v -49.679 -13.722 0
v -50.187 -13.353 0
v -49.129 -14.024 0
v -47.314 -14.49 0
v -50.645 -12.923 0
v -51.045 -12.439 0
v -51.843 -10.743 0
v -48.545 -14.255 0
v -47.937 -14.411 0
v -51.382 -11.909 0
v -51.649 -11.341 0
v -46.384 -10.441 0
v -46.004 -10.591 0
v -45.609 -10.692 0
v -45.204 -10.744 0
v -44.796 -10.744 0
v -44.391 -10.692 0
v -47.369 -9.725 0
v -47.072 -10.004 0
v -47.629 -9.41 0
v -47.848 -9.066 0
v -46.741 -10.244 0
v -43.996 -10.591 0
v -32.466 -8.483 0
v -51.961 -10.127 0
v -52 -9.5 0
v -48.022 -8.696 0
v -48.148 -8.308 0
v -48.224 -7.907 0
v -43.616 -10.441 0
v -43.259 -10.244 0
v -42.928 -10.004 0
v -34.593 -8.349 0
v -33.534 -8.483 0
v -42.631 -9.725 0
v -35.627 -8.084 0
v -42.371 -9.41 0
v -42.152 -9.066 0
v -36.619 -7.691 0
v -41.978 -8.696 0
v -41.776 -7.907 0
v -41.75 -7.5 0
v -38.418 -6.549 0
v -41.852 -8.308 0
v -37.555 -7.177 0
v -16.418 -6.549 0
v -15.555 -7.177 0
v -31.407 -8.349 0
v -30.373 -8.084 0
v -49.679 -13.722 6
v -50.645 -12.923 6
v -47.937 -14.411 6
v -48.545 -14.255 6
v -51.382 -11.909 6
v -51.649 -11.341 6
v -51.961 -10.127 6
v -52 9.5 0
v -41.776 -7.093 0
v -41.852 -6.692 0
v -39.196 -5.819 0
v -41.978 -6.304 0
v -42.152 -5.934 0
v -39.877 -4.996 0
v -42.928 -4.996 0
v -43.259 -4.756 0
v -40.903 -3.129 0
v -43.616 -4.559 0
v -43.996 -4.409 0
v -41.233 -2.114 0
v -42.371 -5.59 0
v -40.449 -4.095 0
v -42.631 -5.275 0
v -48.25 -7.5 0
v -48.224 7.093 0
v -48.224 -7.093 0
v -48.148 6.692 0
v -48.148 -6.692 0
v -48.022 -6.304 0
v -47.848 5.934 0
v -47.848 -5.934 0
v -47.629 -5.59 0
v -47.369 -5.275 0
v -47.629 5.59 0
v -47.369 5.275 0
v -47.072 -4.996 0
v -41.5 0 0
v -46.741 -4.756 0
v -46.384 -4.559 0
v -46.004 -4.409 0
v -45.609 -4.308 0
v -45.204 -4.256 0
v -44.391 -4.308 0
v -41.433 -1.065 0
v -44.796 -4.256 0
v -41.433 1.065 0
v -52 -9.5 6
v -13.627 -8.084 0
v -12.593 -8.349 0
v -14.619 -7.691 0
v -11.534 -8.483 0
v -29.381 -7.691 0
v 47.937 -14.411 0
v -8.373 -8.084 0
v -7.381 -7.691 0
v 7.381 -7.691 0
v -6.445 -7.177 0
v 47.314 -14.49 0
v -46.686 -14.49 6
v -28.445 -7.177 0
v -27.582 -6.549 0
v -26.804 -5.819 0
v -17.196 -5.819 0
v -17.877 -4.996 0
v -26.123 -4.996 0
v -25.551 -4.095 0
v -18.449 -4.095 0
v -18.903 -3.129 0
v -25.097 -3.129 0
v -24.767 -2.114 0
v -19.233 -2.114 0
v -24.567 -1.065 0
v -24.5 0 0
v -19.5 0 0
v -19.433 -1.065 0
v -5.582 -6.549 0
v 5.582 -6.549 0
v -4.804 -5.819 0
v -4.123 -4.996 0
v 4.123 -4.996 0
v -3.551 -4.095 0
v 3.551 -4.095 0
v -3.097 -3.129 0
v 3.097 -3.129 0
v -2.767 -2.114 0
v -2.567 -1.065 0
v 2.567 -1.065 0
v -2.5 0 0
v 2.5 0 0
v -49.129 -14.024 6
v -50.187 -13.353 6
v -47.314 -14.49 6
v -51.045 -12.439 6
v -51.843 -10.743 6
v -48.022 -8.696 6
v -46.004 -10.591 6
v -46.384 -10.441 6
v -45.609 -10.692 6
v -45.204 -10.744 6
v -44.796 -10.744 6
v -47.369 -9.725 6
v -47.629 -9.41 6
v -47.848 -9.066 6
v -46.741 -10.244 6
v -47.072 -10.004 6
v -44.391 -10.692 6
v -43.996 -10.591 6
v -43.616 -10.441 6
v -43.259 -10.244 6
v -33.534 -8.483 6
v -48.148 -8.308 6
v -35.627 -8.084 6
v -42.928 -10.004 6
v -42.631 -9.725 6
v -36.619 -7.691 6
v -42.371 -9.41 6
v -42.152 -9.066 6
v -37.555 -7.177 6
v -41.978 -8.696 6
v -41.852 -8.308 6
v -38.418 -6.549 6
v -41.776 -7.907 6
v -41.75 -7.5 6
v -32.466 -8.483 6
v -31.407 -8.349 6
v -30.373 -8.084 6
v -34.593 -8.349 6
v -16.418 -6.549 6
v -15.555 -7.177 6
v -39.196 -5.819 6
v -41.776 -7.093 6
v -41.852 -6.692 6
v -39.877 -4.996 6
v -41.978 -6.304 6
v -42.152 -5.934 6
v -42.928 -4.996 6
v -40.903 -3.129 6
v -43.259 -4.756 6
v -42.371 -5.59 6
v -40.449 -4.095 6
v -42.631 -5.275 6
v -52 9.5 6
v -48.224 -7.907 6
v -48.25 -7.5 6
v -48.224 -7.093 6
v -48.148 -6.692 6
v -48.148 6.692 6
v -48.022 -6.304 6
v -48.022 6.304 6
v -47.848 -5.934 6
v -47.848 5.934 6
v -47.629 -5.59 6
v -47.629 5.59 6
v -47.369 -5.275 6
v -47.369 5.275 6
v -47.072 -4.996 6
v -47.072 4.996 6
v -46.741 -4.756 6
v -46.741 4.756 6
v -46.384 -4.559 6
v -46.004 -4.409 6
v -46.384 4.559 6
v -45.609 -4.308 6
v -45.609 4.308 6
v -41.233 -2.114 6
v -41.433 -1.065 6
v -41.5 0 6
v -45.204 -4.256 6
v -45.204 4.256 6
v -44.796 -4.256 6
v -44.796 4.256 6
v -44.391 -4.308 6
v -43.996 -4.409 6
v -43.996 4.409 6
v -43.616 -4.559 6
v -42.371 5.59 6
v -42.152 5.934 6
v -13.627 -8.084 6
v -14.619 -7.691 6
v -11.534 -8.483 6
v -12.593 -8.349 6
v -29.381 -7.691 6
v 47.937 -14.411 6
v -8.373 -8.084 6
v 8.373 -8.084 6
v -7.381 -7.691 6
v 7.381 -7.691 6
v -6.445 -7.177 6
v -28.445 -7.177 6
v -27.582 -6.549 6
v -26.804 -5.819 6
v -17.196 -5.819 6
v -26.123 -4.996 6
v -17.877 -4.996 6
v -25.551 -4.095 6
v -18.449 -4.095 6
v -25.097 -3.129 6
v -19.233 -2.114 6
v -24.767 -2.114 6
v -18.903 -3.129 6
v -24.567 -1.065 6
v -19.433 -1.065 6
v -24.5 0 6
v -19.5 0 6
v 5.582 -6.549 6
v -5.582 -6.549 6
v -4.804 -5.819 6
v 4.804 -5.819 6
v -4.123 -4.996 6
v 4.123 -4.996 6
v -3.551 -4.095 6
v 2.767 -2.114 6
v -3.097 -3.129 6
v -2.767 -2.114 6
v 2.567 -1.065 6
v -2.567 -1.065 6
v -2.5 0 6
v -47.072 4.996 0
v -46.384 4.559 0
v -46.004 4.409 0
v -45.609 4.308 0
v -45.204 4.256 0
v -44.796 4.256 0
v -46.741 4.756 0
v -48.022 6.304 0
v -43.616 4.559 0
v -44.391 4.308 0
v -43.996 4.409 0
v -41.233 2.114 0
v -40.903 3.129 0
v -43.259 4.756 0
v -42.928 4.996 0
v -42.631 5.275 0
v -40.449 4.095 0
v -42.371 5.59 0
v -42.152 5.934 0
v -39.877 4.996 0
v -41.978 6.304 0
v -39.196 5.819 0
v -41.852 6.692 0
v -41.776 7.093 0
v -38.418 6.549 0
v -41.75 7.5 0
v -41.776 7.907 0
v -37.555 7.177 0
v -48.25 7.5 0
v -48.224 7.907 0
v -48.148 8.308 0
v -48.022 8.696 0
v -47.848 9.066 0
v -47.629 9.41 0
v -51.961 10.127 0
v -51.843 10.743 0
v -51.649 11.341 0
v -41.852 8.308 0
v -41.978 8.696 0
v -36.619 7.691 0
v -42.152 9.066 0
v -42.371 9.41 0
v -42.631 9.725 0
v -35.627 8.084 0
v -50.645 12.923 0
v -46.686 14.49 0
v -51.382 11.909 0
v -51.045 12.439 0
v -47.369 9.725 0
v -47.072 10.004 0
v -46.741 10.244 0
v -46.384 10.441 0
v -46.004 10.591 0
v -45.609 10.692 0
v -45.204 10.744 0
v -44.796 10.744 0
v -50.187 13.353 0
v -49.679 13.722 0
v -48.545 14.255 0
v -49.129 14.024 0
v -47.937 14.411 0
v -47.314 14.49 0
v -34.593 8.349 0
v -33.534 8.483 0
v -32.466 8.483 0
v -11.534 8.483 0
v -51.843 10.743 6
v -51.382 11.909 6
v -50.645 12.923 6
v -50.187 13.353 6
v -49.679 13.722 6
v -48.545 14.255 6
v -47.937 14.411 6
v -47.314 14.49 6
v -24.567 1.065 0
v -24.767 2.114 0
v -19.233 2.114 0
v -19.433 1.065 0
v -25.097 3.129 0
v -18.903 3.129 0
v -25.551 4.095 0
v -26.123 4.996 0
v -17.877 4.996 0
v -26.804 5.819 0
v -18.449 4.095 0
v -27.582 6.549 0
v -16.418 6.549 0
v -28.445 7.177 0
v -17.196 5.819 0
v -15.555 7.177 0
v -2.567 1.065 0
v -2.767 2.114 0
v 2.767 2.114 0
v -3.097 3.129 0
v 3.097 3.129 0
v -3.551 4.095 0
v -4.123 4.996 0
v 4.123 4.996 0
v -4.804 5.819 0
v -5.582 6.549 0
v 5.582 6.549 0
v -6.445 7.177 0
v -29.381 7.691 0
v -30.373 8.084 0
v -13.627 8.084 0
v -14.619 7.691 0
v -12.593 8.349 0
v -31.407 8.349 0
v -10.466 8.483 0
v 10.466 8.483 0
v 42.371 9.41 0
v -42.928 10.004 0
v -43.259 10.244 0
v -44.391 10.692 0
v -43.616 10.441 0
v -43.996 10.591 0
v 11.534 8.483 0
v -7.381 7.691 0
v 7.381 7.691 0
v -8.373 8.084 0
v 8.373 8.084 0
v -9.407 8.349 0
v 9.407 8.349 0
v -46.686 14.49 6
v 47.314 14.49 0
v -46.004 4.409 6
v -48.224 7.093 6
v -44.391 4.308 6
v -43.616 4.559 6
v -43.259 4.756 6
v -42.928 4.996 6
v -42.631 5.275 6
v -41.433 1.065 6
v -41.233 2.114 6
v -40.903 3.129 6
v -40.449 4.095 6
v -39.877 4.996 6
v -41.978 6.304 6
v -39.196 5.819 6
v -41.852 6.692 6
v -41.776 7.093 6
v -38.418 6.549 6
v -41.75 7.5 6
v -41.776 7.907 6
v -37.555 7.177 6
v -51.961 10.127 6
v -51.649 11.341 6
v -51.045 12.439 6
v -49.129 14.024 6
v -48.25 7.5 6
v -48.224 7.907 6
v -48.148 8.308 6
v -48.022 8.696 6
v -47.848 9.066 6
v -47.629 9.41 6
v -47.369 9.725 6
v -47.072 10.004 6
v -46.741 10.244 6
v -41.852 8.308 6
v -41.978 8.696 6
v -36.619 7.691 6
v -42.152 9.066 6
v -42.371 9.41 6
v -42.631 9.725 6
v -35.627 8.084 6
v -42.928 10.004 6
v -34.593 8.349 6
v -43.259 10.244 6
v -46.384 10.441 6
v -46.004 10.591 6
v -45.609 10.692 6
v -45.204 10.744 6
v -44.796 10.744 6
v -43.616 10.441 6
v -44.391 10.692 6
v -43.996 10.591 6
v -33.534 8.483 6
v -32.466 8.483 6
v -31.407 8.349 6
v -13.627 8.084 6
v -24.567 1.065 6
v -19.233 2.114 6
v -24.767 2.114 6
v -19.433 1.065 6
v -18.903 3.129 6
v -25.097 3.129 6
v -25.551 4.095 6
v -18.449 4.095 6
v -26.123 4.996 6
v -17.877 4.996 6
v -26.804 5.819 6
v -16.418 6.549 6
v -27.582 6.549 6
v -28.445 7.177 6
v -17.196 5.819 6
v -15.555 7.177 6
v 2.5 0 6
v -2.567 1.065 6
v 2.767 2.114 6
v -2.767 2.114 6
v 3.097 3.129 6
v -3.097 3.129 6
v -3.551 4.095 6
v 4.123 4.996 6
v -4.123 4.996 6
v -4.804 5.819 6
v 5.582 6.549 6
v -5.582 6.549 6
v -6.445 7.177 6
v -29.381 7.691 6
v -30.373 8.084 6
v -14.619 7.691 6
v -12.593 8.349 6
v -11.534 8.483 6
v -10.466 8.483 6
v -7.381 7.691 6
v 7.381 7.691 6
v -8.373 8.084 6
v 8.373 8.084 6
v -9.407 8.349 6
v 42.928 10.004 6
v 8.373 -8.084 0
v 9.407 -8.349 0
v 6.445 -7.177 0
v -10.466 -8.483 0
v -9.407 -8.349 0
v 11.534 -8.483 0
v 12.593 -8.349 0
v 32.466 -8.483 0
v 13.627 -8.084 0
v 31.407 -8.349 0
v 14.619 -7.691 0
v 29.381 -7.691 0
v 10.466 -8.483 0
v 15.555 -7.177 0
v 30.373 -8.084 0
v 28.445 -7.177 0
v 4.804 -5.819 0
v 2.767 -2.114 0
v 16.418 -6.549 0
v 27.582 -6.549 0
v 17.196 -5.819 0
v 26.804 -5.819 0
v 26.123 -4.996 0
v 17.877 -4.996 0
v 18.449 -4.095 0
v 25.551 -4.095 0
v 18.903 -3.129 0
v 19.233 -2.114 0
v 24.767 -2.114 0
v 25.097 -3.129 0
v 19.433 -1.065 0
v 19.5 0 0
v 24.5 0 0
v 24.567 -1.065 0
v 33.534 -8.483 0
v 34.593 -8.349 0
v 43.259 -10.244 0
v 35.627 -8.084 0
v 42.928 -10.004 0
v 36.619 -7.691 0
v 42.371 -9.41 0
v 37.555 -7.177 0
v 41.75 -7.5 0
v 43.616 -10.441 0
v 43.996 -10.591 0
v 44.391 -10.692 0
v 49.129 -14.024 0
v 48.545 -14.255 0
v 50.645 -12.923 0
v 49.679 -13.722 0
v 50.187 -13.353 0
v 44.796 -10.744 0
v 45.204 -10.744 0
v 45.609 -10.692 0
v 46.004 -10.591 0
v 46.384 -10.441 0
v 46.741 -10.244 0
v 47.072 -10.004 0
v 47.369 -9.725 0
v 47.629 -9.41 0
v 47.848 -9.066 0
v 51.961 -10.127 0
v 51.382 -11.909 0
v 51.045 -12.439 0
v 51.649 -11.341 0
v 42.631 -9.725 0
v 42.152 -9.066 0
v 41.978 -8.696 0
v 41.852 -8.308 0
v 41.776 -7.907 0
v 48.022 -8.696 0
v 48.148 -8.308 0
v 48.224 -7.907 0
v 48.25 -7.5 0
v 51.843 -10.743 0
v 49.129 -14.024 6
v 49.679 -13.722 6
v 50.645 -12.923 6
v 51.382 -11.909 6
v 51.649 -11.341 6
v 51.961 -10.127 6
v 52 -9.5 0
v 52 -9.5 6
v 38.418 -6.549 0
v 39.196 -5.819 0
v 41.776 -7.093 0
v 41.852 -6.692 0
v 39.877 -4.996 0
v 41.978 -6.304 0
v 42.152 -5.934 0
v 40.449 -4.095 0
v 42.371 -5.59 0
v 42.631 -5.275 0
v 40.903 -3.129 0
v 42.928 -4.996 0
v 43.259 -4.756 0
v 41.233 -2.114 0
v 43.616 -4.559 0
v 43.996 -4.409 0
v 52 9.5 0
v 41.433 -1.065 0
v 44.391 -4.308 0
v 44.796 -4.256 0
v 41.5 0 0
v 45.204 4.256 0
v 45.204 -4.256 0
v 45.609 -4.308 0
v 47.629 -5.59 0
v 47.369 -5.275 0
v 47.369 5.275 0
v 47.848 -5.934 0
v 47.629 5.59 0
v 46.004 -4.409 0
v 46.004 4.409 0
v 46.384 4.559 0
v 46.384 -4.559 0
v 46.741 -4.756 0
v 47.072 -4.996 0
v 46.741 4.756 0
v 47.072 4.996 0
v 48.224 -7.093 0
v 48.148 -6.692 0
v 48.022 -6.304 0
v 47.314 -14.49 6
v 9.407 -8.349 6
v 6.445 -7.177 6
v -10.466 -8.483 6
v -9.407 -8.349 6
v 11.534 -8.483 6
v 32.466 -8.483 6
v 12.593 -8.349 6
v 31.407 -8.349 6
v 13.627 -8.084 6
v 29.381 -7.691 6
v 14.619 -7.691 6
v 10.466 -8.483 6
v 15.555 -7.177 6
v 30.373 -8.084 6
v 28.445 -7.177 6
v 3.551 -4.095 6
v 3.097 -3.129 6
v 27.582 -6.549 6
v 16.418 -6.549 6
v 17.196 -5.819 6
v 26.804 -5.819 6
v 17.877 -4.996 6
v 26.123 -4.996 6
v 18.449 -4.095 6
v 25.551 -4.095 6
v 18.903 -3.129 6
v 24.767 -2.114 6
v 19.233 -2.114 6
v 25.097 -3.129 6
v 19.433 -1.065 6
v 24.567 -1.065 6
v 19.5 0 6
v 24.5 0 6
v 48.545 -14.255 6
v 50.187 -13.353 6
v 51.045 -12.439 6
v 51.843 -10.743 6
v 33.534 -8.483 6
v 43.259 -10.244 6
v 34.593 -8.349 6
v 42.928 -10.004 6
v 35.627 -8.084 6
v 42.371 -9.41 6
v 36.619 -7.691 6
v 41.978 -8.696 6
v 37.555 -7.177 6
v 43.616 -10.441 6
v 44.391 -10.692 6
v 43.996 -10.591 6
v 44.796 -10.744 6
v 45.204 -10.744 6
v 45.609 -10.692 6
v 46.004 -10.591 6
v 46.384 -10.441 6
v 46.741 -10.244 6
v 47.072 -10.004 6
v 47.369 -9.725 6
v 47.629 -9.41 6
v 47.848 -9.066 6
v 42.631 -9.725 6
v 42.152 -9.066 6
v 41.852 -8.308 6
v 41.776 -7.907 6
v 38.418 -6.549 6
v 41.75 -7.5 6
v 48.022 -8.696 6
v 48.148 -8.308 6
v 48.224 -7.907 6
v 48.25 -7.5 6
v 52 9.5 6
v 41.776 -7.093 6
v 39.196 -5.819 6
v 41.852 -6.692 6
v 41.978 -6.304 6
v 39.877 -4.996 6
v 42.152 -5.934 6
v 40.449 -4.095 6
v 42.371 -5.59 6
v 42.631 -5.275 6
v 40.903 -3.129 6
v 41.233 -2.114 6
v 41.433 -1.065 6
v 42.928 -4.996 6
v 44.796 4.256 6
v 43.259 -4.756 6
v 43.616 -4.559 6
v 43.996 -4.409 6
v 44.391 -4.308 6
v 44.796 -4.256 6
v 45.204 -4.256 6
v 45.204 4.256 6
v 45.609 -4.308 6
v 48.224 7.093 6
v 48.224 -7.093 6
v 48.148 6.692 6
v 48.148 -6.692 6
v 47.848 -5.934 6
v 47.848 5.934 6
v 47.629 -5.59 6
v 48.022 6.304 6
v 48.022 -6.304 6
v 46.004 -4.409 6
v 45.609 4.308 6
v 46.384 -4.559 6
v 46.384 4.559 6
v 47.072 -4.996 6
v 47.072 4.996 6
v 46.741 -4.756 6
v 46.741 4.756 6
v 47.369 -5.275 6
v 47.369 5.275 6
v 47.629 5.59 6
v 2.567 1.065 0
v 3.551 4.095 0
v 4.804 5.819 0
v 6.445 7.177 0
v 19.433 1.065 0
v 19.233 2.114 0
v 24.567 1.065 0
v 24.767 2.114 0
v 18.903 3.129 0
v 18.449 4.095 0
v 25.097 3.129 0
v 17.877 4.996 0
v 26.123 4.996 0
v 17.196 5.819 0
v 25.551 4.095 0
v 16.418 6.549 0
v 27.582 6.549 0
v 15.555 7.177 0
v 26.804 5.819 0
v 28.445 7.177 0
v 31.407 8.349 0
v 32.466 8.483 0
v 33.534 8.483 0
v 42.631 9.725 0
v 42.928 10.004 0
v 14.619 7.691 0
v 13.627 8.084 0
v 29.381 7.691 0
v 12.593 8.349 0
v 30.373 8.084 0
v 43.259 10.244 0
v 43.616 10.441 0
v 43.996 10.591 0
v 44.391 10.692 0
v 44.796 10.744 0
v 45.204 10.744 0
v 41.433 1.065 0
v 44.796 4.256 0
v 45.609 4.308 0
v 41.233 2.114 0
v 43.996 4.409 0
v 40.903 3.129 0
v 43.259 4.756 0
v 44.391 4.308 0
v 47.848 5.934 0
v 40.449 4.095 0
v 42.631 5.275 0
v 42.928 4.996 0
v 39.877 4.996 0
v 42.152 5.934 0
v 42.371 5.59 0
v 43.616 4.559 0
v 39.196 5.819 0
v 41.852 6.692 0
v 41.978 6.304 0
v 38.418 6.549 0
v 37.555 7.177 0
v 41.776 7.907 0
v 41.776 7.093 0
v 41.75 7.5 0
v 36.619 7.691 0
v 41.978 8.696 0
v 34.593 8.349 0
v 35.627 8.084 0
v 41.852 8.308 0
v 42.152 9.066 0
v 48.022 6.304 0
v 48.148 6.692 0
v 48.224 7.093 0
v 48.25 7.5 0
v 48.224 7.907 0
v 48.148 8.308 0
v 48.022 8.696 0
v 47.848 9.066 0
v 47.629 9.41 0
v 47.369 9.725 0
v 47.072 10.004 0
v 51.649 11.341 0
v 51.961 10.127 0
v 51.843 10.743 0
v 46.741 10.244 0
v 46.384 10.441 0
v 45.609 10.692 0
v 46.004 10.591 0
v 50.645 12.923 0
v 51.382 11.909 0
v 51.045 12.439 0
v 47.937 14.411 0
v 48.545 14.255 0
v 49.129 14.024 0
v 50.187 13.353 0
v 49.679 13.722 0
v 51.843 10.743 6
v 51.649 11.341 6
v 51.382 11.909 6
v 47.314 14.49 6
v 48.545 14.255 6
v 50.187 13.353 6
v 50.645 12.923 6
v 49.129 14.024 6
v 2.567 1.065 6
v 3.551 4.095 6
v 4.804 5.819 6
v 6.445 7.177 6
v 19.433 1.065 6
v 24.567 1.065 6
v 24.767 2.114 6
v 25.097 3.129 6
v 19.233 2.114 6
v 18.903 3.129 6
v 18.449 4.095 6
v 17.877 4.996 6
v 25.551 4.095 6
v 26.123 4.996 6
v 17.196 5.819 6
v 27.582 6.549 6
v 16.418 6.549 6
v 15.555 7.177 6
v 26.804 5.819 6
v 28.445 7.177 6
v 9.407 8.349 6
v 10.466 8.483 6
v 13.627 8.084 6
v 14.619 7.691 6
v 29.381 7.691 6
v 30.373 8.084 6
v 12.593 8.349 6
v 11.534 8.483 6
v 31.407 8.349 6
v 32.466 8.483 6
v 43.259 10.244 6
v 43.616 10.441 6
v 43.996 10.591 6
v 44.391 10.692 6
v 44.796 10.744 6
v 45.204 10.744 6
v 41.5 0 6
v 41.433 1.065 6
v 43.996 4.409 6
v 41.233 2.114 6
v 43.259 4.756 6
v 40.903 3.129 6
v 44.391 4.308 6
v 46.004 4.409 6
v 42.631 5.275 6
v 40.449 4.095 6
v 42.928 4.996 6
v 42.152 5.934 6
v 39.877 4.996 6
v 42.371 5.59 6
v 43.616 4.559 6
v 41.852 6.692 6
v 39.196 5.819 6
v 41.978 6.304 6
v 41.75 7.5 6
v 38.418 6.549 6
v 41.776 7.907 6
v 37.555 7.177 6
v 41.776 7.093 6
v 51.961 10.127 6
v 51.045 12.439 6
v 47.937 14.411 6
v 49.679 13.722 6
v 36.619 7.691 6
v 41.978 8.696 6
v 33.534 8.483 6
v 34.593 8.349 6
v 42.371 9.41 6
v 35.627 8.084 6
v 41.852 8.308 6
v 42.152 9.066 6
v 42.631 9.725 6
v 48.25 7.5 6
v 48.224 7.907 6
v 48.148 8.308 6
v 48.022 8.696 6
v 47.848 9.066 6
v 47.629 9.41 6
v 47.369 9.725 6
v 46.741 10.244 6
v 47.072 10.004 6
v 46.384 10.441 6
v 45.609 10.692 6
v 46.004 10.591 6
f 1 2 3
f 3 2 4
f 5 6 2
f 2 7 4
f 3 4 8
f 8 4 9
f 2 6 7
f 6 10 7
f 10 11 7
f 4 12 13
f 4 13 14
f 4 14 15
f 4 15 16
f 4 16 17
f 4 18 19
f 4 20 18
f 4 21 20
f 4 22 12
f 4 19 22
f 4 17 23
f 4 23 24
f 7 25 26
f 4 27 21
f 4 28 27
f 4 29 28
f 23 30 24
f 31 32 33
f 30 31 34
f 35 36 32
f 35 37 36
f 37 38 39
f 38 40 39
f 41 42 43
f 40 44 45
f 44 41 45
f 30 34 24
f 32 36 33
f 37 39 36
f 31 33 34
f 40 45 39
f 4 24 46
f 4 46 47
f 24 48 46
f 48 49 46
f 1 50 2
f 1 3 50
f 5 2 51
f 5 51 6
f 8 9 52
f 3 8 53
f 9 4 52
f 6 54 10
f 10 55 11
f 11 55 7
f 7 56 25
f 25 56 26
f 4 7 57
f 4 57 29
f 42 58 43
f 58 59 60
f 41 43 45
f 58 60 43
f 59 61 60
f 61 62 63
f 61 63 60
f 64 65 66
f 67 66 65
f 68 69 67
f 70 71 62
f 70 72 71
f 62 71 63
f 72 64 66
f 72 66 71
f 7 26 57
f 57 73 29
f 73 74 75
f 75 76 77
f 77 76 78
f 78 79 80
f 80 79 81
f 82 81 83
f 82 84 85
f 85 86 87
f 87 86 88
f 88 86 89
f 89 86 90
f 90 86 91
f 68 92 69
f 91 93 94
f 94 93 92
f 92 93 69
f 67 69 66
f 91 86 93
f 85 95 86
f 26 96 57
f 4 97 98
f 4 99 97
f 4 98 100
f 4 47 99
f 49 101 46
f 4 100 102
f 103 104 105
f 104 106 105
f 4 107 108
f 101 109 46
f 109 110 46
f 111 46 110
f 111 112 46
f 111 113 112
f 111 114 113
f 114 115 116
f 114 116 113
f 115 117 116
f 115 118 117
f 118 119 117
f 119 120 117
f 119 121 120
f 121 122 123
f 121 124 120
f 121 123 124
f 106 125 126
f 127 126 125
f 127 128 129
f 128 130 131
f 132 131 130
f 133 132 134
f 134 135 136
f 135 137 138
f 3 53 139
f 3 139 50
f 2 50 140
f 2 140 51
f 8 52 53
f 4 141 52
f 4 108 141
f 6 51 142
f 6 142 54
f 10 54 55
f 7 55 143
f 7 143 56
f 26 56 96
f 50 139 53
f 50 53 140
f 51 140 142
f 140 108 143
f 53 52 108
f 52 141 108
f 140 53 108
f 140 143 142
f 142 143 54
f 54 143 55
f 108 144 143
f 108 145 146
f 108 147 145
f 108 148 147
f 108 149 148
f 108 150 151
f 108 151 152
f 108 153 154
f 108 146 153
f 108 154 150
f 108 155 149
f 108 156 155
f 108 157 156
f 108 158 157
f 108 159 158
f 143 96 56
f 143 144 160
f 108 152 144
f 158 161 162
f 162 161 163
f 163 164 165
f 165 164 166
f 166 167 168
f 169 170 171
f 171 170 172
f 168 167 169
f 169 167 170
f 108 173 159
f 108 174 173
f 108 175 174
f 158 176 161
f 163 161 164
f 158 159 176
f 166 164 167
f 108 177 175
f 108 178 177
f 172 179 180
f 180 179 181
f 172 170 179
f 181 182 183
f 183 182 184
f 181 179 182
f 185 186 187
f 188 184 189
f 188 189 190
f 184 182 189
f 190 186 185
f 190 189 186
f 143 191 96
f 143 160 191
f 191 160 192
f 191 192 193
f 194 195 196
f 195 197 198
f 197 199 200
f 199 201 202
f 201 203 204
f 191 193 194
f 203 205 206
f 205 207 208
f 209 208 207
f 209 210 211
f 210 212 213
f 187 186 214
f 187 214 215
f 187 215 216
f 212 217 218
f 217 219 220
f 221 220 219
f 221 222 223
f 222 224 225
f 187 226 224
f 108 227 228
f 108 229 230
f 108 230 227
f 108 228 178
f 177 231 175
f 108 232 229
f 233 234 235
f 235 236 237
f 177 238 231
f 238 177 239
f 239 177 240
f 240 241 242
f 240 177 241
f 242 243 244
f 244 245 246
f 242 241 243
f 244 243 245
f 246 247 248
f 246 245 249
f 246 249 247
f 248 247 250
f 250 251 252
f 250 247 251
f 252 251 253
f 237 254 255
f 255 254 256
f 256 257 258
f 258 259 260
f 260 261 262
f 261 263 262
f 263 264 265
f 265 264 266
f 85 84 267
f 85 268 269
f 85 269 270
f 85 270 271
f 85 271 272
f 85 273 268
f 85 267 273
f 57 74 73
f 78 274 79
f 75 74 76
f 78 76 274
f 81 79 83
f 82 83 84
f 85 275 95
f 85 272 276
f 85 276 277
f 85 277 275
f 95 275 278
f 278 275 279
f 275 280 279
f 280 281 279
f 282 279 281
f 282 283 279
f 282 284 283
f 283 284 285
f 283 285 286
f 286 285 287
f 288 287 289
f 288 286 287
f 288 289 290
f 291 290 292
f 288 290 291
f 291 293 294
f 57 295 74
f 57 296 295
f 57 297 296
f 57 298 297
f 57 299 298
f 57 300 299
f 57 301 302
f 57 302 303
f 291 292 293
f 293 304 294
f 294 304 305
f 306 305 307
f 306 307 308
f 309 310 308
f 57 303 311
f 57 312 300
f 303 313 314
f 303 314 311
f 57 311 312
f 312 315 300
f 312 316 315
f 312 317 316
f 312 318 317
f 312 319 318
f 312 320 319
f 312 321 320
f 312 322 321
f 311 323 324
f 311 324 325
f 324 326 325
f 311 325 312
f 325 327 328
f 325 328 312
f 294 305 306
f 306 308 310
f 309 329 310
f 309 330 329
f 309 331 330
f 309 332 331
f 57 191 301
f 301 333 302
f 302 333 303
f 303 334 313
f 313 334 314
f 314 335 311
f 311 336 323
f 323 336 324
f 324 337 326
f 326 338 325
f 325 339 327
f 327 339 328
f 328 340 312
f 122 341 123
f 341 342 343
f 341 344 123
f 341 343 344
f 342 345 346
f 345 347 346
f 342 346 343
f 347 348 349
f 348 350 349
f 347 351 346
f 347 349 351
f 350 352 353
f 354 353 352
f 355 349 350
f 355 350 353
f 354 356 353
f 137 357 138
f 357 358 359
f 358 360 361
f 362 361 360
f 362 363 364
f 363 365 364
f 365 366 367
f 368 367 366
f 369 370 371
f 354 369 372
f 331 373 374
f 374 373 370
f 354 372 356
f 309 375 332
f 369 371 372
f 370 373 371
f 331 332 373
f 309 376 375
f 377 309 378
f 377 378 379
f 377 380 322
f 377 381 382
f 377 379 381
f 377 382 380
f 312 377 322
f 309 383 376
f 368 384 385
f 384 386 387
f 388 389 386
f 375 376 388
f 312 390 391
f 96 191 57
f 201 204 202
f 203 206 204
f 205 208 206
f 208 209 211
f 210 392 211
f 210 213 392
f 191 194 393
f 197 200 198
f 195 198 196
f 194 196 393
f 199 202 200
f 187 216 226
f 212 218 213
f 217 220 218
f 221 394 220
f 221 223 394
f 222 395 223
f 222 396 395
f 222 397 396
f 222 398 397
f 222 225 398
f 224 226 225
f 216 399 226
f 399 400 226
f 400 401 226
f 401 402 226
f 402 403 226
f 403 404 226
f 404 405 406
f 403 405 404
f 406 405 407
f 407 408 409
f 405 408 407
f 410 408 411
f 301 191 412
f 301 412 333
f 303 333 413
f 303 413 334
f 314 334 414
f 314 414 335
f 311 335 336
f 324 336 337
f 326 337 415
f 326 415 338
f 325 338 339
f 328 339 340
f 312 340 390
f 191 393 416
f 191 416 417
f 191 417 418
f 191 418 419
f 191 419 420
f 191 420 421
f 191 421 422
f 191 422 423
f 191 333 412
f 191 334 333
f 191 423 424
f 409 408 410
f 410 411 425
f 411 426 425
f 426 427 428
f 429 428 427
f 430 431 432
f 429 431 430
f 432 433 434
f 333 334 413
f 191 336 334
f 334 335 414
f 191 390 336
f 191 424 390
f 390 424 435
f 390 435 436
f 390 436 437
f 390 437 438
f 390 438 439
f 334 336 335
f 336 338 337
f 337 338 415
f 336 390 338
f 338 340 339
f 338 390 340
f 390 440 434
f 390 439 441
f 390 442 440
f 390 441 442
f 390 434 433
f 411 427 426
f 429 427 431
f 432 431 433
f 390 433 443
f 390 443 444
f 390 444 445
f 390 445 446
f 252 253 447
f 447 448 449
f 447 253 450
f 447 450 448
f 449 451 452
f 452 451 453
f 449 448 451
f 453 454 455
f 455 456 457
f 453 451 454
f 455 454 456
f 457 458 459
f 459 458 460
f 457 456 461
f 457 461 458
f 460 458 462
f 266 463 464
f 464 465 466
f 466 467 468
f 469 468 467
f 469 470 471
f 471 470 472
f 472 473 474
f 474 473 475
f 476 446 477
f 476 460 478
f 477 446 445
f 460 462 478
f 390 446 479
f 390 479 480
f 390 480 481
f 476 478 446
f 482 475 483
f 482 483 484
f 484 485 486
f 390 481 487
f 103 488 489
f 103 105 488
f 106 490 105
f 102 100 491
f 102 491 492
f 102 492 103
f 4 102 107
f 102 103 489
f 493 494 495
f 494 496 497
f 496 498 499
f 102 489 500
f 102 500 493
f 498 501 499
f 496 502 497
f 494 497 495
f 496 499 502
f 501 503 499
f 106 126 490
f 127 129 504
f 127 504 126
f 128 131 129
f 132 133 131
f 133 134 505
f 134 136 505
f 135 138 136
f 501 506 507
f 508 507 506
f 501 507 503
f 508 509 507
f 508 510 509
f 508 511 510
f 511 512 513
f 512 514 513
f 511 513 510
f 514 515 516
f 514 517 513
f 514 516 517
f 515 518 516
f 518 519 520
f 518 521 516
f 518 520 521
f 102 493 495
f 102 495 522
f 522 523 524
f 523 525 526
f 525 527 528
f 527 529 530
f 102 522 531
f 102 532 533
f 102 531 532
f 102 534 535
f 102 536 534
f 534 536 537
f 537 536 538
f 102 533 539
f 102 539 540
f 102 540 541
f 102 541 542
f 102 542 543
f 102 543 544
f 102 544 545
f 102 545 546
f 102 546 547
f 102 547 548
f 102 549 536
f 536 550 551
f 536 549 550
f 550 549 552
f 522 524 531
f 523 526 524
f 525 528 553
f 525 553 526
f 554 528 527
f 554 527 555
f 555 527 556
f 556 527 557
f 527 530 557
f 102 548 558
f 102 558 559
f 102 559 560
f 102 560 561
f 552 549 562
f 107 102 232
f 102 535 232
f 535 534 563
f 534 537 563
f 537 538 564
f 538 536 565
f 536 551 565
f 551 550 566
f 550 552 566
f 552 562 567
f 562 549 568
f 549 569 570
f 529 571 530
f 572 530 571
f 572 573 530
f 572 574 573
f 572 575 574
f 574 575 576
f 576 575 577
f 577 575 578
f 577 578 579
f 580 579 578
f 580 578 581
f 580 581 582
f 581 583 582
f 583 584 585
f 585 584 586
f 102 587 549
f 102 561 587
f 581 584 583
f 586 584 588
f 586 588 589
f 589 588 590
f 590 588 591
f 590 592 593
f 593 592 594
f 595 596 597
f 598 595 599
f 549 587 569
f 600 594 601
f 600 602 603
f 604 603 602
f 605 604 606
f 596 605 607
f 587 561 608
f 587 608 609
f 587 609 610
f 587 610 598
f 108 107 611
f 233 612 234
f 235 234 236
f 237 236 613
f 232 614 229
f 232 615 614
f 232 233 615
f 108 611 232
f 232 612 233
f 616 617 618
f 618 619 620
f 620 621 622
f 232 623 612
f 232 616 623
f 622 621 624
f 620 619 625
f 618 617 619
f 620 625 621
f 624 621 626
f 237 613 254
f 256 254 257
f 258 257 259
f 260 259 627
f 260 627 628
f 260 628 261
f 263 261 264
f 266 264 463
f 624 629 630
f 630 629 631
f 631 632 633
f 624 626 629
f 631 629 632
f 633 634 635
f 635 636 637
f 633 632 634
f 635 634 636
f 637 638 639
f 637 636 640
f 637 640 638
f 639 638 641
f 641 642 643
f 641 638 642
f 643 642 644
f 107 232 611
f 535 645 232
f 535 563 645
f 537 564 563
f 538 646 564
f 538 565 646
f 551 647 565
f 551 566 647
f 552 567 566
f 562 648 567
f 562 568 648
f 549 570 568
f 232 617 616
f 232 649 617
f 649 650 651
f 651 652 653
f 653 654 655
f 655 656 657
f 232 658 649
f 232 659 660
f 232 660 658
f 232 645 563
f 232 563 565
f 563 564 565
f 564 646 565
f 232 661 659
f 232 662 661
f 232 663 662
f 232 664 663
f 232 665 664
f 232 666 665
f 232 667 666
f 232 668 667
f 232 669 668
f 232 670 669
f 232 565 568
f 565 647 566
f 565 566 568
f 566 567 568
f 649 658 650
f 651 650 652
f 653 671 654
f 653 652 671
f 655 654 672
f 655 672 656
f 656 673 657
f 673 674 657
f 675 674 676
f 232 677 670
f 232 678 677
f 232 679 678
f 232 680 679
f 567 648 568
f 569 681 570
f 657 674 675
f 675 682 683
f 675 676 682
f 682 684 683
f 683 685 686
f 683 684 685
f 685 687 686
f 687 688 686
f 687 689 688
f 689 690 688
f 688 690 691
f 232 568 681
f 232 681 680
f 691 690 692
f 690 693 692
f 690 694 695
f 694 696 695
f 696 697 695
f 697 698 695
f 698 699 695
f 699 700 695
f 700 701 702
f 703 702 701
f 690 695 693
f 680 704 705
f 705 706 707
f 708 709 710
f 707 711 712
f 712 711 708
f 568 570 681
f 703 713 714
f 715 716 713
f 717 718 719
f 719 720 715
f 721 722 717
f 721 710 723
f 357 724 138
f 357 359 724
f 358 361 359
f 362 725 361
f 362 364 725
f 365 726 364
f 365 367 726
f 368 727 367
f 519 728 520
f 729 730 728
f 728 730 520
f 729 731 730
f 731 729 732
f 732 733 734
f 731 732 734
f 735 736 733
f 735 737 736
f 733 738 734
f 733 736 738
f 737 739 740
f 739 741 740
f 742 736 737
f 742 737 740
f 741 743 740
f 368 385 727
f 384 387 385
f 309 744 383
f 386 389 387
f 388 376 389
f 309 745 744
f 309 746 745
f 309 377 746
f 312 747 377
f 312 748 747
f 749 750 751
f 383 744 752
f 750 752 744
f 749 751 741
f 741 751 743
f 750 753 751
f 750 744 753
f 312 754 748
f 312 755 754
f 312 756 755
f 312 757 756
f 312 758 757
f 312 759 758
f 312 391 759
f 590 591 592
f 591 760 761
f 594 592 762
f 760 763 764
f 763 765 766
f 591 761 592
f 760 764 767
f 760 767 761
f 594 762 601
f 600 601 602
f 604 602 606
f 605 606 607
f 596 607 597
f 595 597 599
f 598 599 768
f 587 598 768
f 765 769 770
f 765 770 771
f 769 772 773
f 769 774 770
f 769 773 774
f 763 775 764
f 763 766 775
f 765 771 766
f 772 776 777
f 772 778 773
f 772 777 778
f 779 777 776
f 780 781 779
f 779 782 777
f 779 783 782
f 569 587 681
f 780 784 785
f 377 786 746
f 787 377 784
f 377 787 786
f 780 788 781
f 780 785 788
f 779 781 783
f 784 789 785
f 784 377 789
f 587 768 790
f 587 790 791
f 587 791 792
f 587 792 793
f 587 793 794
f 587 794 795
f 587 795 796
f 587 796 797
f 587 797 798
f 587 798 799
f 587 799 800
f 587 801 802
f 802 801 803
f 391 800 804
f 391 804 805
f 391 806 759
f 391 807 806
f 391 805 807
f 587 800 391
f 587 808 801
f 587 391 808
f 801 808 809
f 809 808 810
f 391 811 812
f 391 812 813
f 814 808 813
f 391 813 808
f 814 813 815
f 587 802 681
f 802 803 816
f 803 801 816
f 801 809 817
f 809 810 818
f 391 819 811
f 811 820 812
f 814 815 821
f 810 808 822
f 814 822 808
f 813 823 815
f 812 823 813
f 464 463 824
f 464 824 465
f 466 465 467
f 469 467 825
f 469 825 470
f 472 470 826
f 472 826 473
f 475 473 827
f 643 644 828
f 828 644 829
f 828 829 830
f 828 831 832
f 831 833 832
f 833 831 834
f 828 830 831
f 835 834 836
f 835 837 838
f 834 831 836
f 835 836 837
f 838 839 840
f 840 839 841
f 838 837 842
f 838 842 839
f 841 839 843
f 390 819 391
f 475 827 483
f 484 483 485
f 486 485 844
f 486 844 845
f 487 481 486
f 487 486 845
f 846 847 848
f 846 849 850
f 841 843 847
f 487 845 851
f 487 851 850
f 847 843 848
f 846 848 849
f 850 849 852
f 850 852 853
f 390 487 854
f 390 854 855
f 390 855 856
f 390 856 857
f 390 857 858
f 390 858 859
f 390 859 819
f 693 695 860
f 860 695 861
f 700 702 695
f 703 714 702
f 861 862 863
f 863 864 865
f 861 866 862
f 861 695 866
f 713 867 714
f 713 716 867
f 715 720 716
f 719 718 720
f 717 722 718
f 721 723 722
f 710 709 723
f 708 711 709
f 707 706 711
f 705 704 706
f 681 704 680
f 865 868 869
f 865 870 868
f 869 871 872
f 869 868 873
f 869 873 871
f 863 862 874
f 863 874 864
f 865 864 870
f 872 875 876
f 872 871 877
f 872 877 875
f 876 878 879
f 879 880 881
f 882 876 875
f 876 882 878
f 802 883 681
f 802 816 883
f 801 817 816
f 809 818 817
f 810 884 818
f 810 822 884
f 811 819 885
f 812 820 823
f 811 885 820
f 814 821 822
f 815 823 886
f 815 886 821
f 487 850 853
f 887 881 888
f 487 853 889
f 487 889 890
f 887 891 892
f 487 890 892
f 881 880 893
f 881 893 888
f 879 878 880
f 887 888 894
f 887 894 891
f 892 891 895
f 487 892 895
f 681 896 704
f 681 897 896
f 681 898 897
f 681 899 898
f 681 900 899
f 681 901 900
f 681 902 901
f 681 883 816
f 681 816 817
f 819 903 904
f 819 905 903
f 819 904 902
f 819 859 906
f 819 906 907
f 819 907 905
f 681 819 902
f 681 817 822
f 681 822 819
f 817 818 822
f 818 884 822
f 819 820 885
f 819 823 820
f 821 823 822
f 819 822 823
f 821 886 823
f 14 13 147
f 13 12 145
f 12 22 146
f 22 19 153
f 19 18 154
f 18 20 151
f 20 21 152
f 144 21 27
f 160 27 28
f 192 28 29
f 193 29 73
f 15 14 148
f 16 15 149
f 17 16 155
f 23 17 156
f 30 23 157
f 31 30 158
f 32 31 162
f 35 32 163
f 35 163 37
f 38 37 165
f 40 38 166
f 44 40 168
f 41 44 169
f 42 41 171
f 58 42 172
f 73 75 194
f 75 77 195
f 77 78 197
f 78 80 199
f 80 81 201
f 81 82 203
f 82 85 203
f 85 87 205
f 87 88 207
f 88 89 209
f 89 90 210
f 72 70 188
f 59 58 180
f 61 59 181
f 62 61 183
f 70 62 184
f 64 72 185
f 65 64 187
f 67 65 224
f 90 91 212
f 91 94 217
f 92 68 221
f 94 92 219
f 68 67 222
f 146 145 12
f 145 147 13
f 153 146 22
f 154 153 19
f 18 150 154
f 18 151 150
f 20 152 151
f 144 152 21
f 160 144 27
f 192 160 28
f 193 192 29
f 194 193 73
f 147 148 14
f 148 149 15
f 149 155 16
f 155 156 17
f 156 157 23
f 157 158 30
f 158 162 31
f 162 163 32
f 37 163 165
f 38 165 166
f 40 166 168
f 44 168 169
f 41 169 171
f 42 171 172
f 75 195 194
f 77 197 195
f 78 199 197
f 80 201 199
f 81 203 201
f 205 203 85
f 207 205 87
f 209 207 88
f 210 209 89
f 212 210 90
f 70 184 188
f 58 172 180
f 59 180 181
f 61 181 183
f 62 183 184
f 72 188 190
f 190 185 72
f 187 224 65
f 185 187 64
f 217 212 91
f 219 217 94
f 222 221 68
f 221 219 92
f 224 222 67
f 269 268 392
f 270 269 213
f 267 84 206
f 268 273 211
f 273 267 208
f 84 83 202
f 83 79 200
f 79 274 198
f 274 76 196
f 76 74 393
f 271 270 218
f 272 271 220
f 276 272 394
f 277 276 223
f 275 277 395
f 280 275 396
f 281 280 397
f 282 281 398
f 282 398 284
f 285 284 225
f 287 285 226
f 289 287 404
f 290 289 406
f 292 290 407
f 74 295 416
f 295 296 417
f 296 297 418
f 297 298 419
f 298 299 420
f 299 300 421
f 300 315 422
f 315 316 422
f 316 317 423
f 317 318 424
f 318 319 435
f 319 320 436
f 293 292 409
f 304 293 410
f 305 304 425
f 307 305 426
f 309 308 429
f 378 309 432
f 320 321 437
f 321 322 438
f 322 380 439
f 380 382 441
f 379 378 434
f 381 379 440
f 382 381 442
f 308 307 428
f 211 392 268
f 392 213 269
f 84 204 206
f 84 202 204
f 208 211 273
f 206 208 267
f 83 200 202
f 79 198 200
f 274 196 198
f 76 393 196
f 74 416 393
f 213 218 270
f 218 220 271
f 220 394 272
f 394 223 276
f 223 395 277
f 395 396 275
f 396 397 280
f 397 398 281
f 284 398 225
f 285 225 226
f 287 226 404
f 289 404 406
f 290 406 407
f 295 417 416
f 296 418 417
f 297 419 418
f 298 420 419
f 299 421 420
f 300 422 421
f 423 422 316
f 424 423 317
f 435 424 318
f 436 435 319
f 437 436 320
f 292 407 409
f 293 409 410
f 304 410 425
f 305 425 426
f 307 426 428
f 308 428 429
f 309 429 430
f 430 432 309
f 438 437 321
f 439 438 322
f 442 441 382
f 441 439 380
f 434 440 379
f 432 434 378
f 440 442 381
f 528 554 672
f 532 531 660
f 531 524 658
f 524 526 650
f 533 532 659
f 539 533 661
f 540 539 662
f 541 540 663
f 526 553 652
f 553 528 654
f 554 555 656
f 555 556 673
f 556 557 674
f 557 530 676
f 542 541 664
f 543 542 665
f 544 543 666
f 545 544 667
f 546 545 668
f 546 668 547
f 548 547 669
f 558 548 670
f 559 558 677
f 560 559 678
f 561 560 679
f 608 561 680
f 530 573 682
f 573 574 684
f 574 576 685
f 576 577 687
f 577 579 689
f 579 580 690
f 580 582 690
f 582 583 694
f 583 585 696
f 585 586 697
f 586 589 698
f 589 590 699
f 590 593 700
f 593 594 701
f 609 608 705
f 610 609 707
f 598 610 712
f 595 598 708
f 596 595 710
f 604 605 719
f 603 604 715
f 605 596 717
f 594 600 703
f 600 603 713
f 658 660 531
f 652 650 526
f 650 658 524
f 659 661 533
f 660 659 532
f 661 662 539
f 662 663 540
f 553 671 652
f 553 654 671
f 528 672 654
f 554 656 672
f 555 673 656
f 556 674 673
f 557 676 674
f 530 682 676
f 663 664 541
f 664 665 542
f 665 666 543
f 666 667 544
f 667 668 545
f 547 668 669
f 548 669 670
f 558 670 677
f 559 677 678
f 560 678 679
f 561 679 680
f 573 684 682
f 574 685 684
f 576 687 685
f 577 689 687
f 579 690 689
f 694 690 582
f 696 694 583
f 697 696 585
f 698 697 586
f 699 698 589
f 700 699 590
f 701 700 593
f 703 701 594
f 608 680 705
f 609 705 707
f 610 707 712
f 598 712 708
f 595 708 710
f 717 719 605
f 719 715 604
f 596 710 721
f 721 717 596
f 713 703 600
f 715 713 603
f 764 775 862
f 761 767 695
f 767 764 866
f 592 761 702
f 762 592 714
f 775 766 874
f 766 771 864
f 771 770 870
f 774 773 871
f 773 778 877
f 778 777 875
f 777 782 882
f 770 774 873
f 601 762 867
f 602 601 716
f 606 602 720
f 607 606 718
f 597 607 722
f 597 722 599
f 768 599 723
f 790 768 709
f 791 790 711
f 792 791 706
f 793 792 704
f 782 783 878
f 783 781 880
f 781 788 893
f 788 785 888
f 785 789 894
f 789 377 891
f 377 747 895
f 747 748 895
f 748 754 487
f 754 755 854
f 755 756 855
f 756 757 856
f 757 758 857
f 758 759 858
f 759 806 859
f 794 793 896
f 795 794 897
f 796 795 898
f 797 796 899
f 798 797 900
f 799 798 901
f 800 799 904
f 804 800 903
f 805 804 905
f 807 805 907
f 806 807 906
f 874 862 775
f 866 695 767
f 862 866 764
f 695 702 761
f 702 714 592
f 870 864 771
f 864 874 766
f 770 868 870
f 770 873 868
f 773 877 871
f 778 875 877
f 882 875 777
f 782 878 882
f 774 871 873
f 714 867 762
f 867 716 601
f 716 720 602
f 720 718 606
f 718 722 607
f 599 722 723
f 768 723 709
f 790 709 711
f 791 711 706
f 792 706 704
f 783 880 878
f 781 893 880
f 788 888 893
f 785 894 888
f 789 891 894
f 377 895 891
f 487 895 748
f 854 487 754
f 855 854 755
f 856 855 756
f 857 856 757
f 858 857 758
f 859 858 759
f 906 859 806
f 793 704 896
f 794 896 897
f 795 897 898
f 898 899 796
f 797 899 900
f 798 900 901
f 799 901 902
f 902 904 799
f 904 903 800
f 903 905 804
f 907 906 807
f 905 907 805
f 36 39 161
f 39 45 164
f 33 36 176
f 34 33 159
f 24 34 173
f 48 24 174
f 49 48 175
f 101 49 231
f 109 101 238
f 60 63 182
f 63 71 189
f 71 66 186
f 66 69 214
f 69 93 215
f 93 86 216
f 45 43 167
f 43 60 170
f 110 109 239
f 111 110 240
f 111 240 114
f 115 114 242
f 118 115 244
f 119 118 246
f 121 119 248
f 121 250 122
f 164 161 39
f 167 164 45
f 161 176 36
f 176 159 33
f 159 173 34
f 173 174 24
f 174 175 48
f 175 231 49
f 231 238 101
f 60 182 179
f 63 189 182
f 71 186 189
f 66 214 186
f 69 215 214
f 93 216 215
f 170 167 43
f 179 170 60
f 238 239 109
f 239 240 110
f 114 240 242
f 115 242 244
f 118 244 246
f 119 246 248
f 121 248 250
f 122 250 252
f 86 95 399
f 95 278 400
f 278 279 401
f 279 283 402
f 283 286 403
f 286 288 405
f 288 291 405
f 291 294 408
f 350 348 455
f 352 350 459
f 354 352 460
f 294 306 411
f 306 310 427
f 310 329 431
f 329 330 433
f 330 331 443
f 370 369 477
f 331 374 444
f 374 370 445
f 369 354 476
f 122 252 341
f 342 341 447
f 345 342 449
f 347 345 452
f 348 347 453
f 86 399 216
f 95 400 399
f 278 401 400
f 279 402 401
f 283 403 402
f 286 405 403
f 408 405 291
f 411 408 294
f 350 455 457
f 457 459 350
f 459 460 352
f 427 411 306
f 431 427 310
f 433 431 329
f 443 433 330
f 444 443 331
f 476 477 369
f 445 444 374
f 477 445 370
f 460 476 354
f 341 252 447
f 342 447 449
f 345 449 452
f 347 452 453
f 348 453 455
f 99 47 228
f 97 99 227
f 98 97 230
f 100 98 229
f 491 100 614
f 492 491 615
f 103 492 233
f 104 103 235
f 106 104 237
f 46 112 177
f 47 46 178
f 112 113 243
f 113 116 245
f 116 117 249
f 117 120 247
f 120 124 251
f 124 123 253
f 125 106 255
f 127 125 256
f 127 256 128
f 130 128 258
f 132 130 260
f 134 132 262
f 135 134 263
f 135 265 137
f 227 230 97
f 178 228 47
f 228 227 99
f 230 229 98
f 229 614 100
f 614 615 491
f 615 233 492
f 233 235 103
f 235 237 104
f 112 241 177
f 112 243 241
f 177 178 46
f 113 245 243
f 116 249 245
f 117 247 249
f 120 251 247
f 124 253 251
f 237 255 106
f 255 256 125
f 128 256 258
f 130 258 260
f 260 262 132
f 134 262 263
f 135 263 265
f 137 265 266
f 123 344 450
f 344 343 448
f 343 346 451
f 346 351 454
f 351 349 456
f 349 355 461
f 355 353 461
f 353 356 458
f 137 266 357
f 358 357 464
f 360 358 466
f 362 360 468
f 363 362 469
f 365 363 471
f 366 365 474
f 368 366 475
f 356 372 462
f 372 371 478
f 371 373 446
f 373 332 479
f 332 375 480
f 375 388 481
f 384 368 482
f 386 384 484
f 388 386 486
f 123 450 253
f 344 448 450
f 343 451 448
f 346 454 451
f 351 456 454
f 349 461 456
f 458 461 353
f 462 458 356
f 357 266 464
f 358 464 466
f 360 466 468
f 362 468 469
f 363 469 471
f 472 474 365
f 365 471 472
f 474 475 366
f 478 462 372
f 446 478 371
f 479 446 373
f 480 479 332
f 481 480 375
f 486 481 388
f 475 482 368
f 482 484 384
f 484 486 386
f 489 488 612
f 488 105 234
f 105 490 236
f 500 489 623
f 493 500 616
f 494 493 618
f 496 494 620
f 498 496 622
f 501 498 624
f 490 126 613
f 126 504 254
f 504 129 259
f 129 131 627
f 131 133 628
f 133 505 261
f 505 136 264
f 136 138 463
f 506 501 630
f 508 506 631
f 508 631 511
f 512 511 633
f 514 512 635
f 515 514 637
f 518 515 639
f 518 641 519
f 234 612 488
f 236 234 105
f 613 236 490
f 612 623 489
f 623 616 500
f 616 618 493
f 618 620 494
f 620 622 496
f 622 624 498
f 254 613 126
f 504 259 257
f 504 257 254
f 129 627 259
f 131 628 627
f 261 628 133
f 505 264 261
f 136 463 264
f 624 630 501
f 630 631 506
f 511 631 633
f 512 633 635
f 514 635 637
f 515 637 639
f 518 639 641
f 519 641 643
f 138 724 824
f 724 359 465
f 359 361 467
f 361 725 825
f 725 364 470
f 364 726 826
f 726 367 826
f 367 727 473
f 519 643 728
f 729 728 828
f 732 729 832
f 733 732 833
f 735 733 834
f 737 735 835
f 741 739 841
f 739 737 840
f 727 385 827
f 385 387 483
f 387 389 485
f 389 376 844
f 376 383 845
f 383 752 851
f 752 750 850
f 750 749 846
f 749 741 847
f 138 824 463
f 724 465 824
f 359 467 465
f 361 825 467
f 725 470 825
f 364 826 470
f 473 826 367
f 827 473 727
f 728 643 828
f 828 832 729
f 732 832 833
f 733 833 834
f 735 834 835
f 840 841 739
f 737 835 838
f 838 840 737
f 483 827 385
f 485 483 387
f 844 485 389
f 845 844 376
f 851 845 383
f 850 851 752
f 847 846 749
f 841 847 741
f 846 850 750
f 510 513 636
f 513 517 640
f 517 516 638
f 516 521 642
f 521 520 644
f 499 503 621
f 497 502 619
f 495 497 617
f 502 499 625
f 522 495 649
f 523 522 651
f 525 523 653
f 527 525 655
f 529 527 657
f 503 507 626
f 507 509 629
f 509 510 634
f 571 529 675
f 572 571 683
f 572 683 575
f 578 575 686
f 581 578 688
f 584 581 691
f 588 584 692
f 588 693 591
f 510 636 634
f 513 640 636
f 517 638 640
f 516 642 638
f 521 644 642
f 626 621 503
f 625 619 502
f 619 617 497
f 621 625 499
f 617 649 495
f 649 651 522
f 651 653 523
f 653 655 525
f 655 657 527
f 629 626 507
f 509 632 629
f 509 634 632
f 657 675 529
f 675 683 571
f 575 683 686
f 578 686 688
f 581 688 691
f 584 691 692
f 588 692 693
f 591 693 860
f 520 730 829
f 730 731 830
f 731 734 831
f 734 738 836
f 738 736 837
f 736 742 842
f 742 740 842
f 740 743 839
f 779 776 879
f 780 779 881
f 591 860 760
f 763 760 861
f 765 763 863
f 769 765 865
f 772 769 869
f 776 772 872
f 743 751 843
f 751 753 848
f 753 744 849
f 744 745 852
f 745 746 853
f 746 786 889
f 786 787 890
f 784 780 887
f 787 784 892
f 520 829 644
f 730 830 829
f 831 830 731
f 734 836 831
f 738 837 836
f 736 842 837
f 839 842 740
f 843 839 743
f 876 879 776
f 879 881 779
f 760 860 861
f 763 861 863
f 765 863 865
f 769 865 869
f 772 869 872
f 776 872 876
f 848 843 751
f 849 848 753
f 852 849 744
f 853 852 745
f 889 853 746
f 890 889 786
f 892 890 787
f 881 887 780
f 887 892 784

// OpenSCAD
$fn = 50;

difference() {
	union() {
		hull() {
			translate(v = [-47.0, 9.5, 0]) {
				cylinder(h = 6, r = 5);
			}
			translate(v = [47.0, 9.5, 0]) {
				cylinder(h = 6, r = 5);
			}
			translate(v = [-47.0, -9.5, 0]) {
				cylinder(h = 6, r = 5);
			}
			translate(v = [47.0, -9.5, 0]) {
				cylinder(h = 6, r = 5);
			}
		}
	}
	union() {
		translate(v = [-45.0, -7.5, 0]) {
			cylinder(h = 6, r = 3.25);
		}
		translate(v = [-45.0, 7.5, 0]) {
			cylinder(h = 6, r = 3.25);
		}
		translate(v = [45.0, -7.5, 0]) {
			cylinder(h = 6, r = 3.25);
		}
		translate(v = [45.0, 7.5, 0]) {
			cylinder(h = 6, r = 3.25);
		}
		translate(v = [-33.0, 0, 0.0]) {
			cylinder(h = 6, r = 8.5);
		}
		translate(v = [-11.0, 0, 0.0]) {
			cylinder(h = 6, r = 8.5);
		}
		translate(v = [11.0, 0, 0.0]) {
			cylinder(h = 6, r = 8.5);
		}
		translate(v = [33.0, 0, 0.0]) {
			cylinder(h = 6, r = 8.5);
		}
	}
}
